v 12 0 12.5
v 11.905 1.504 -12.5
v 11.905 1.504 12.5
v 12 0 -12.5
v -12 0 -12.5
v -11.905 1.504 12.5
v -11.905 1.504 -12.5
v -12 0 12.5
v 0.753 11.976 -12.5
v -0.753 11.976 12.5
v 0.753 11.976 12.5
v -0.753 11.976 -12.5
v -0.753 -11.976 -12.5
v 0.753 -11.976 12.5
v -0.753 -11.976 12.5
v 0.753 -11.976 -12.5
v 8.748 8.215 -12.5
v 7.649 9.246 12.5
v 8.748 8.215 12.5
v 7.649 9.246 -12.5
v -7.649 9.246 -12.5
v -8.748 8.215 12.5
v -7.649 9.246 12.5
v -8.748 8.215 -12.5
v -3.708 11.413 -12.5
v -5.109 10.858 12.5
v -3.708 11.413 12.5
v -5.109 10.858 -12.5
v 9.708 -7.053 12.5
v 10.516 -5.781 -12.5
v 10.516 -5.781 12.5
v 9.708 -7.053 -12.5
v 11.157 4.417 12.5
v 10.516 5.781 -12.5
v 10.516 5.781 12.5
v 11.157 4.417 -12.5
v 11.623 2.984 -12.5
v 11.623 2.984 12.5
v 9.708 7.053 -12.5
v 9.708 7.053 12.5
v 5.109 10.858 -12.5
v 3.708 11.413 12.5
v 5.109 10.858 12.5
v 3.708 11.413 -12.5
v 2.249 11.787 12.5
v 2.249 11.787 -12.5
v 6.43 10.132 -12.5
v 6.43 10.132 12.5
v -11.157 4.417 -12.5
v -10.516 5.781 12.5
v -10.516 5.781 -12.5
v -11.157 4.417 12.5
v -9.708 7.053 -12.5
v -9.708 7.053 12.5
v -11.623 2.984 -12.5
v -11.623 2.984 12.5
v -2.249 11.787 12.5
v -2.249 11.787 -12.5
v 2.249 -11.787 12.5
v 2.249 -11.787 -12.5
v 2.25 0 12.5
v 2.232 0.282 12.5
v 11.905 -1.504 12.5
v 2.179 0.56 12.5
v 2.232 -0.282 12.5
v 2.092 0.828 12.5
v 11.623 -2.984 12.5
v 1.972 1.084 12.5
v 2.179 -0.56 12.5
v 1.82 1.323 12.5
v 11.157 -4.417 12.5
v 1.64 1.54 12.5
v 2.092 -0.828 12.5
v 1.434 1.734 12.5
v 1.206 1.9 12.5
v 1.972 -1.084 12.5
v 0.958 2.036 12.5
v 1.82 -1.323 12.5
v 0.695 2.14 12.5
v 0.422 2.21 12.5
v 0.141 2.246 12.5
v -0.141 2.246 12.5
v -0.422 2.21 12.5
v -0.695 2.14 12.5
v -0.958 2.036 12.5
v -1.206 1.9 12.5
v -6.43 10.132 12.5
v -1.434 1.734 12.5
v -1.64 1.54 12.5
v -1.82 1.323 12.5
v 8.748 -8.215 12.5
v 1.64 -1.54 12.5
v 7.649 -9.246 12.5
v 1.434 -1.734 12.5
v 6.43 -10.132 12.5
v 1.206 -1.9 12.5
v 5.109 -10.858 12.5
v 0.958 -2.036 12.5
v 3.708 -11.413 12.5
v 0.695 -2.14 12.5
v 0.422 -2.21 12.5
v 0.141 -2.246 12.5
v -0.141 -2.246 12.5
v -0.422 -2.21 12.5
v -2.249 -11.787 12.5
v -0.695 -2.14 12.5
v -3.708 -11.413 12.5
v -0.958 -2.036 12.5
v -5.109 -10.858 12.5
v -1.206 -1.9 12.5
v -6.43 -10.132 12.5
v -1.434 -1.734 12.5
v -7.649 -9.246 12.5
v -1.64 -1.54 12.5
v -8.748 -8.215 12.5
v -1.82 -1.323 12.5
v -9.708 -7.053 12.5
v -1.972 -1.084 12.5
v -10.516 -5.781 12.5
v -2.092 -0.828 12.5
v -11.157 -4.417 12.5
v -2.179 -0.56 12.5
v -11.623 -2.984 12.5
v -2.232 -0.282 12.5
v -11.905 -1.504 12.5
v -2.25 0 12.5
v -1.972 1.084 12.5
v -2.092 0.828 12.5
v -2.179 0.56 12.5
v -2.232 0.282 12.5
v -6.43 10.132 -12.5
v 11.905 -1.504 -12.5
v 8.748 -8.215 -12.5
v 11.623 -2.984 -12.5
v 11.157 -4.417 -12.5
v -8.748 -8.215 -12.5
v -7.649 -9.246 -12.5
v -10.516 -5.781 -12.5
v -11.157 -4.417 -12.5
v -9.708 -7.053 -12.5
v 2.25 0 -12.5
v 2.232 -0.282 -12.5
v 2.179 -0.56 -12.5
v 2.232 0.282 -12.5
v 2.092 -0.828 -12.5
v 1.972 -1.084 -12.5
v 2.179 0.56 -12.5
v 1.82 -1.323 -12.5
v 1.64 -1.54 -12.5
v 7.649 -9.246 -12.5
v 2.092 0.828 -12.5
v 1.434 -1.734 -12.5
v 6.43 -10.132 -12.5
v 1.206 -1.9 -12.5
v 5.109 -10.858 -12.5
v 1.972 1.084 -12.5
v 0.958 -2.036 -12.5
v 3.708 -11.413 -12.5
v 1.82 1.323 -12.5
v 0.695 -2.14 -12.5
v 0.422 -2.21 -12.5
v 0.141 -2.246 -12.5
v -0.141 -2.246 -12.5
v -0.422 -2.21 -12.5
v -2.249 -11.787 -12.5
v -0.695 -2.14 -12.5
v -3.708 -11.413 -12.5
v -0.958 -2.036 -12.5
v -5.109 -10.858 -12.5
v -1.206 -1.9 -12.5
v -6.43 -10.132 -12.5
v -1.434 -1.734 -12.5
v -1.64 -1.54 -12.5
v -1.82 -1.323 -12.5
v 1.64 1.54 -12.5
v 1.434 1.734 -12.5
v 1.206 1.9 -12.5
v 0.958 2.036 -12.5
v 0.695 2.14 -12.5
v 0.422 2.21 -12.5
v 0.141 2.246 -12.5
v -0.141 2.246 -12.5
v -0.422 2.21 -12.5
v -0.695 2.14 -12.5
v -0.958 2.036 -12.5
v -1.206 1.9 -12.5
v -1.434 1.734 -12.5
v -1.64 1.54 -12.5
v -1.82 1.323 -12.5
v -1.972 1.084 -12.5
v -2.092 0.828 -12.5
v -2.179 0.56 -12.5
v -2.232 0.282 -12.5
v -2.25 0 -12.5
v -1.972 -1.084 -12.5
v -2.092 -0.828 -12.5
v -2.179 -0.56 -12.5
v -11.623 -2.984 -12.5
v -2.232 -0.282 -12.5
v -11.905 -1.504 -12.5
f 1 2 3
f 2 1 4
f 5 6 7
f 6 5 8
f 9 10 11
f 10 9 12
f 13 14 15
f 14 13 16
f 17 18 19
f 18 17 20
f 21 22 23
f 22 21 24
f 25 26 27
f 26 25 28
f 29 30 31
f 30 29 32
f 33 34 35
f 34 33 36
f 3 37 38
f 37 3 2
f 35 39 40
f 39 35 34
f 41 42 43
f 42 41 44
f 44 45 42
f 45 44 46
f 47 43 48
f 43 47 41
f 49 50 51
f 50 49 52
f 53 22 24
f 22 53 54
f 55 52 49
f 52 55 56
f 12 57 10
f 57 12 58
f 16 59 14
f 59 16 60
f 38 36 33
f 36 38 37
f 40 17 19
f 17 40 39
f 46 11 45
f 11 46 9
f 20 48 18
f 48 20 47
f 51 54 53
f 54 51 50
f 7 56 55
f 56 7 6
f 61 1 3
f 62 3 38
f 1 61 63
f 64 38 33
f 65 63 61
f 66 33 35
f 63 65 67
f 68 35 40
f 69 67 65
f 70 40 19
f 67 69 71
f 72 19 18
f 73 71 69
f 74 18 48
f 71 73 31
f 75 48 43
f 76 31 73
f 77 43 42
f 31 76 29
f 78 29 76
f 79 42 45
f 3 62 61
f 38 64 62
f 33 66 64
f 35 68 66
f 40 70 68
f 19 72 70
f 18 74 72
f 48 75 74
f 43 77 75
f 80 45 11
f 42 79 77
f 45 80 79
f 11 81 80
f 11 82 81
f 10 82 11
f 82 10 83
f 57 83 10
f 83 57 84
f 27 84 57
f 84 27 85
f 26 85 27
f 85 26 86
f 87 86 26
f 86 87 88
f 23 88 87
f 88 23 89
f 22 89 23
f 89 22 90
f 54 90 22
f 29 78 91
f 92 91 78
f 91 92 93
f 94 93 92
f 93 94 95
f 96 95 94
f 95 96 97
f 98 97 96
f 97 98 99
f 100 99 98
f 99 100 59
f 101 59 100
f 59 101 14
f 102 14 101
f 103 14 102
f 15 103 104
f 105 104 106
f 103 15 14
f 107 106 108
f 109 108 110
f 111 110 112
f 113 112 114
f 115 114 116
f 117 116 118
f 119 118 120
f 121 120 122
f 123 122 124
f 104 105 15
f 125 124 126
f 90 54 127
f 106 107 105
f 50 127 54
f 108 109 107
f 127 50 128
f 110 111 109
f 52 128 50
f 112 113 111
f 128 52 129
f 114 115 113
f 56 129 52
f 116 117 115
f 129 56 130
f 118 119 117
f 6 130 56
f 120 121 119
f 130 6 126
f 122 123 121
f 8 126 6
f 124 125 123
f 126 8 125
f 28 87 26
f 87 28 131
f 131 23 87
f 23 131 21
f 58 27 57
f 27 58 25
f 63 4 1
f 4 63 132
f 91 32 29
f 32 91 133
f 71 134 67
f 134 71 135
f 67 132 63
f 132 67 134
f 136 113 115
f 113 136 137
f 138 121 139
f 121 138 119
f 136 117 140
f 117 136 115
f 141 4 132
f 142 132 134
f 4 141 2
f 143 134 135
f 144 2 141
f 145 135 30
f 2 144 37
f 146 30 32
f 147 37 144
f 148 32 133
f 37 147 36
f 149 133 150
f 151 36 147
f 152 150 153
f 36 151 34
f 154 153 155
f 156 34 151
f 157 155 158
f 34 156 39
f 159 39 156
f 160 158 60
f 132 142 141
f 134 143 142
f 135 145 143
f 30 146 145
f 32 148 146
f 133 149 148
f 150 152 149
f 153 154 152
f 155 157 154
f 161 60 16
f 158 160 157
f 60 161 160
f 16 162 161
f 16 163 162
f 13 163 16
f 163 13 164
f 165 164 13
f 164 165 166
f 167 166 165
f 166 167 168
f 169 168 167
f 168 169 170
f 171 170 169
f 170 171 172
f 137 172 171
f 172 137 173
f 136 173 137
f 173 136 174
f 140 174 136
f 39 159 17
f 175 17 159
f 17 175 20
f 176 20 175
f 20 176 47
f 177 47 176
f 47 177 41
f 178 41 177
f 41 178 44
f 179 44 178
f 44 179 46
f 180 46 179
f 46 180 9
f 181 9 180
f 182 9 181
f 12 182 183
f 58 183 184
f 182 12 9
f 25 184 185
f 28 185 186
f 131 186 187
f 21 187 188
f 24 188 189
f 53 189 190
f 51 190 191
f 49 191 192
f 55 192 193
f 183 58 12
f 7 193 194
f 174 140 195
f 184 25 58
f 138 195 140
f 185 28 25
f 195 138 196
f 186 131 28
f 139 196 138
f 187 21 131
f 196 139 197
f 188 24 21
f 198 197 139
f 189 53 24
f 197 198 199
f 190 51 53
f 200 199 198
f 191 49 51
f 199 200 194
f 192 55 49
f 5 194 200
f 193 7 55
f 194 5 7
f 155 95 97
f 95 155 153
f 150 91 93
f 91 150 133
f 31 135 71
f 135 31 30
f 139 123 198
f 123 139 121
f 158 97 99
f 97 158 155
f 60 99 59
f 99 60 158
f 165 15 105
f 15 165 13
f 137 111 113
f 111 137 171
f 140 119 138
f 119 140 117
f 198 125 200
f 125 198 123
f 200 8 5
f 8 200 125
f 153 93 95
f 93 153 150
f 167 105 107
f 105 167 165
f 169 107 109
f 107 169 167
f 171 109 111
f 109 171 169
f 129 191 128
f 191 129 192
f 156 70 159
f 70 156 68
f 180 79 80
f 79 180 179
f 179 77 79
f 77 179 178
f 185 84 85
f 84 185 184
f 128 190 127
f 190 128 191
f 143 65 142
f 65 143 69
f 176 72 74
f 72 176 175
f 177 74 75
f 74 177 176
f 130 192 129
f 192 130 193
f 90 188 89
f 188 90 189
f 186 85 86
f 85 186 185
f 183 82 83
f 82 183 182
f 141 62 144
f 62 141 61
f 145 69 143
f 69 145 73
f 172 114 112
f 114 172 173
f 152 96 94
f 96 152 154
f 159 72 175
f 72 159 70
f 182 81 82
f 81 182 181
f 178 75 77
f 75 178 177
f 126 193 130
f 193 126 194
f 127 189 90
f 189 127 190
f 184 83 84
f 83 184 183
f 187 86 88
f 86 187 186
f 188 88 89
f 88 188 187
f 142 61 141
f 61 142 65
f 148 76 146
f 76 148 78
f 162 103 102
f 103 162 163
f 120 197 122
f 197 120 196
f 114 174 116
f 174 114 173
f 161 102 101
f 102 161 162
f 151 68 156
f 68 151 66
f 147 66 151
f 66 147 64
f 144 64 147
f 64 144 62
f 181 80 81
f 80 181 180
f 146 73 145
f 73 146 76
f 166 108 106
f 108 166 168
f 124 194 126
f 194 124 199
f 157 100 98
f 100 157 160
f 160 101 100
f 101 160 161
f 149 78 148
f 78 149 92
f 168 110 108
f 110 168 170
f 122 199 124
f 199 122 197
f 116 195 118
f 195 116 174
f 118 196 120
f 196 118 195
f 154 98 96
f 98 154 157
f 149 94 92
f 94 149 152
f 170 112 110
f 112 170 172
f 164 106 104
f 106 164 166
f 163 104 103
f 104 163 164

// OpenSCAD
$fn = 50;


difference() {
	union() {
		translate(v = [0, 0, -12.5000000000]) {
			cylinder(h = 25, r = 12.0000000000);
		}
	}
	union() {
		translate(v = [0, 0, -100.0000000000]) {
			cylinder(h = 200, r = 2.2500000000);
		}
	}
}
